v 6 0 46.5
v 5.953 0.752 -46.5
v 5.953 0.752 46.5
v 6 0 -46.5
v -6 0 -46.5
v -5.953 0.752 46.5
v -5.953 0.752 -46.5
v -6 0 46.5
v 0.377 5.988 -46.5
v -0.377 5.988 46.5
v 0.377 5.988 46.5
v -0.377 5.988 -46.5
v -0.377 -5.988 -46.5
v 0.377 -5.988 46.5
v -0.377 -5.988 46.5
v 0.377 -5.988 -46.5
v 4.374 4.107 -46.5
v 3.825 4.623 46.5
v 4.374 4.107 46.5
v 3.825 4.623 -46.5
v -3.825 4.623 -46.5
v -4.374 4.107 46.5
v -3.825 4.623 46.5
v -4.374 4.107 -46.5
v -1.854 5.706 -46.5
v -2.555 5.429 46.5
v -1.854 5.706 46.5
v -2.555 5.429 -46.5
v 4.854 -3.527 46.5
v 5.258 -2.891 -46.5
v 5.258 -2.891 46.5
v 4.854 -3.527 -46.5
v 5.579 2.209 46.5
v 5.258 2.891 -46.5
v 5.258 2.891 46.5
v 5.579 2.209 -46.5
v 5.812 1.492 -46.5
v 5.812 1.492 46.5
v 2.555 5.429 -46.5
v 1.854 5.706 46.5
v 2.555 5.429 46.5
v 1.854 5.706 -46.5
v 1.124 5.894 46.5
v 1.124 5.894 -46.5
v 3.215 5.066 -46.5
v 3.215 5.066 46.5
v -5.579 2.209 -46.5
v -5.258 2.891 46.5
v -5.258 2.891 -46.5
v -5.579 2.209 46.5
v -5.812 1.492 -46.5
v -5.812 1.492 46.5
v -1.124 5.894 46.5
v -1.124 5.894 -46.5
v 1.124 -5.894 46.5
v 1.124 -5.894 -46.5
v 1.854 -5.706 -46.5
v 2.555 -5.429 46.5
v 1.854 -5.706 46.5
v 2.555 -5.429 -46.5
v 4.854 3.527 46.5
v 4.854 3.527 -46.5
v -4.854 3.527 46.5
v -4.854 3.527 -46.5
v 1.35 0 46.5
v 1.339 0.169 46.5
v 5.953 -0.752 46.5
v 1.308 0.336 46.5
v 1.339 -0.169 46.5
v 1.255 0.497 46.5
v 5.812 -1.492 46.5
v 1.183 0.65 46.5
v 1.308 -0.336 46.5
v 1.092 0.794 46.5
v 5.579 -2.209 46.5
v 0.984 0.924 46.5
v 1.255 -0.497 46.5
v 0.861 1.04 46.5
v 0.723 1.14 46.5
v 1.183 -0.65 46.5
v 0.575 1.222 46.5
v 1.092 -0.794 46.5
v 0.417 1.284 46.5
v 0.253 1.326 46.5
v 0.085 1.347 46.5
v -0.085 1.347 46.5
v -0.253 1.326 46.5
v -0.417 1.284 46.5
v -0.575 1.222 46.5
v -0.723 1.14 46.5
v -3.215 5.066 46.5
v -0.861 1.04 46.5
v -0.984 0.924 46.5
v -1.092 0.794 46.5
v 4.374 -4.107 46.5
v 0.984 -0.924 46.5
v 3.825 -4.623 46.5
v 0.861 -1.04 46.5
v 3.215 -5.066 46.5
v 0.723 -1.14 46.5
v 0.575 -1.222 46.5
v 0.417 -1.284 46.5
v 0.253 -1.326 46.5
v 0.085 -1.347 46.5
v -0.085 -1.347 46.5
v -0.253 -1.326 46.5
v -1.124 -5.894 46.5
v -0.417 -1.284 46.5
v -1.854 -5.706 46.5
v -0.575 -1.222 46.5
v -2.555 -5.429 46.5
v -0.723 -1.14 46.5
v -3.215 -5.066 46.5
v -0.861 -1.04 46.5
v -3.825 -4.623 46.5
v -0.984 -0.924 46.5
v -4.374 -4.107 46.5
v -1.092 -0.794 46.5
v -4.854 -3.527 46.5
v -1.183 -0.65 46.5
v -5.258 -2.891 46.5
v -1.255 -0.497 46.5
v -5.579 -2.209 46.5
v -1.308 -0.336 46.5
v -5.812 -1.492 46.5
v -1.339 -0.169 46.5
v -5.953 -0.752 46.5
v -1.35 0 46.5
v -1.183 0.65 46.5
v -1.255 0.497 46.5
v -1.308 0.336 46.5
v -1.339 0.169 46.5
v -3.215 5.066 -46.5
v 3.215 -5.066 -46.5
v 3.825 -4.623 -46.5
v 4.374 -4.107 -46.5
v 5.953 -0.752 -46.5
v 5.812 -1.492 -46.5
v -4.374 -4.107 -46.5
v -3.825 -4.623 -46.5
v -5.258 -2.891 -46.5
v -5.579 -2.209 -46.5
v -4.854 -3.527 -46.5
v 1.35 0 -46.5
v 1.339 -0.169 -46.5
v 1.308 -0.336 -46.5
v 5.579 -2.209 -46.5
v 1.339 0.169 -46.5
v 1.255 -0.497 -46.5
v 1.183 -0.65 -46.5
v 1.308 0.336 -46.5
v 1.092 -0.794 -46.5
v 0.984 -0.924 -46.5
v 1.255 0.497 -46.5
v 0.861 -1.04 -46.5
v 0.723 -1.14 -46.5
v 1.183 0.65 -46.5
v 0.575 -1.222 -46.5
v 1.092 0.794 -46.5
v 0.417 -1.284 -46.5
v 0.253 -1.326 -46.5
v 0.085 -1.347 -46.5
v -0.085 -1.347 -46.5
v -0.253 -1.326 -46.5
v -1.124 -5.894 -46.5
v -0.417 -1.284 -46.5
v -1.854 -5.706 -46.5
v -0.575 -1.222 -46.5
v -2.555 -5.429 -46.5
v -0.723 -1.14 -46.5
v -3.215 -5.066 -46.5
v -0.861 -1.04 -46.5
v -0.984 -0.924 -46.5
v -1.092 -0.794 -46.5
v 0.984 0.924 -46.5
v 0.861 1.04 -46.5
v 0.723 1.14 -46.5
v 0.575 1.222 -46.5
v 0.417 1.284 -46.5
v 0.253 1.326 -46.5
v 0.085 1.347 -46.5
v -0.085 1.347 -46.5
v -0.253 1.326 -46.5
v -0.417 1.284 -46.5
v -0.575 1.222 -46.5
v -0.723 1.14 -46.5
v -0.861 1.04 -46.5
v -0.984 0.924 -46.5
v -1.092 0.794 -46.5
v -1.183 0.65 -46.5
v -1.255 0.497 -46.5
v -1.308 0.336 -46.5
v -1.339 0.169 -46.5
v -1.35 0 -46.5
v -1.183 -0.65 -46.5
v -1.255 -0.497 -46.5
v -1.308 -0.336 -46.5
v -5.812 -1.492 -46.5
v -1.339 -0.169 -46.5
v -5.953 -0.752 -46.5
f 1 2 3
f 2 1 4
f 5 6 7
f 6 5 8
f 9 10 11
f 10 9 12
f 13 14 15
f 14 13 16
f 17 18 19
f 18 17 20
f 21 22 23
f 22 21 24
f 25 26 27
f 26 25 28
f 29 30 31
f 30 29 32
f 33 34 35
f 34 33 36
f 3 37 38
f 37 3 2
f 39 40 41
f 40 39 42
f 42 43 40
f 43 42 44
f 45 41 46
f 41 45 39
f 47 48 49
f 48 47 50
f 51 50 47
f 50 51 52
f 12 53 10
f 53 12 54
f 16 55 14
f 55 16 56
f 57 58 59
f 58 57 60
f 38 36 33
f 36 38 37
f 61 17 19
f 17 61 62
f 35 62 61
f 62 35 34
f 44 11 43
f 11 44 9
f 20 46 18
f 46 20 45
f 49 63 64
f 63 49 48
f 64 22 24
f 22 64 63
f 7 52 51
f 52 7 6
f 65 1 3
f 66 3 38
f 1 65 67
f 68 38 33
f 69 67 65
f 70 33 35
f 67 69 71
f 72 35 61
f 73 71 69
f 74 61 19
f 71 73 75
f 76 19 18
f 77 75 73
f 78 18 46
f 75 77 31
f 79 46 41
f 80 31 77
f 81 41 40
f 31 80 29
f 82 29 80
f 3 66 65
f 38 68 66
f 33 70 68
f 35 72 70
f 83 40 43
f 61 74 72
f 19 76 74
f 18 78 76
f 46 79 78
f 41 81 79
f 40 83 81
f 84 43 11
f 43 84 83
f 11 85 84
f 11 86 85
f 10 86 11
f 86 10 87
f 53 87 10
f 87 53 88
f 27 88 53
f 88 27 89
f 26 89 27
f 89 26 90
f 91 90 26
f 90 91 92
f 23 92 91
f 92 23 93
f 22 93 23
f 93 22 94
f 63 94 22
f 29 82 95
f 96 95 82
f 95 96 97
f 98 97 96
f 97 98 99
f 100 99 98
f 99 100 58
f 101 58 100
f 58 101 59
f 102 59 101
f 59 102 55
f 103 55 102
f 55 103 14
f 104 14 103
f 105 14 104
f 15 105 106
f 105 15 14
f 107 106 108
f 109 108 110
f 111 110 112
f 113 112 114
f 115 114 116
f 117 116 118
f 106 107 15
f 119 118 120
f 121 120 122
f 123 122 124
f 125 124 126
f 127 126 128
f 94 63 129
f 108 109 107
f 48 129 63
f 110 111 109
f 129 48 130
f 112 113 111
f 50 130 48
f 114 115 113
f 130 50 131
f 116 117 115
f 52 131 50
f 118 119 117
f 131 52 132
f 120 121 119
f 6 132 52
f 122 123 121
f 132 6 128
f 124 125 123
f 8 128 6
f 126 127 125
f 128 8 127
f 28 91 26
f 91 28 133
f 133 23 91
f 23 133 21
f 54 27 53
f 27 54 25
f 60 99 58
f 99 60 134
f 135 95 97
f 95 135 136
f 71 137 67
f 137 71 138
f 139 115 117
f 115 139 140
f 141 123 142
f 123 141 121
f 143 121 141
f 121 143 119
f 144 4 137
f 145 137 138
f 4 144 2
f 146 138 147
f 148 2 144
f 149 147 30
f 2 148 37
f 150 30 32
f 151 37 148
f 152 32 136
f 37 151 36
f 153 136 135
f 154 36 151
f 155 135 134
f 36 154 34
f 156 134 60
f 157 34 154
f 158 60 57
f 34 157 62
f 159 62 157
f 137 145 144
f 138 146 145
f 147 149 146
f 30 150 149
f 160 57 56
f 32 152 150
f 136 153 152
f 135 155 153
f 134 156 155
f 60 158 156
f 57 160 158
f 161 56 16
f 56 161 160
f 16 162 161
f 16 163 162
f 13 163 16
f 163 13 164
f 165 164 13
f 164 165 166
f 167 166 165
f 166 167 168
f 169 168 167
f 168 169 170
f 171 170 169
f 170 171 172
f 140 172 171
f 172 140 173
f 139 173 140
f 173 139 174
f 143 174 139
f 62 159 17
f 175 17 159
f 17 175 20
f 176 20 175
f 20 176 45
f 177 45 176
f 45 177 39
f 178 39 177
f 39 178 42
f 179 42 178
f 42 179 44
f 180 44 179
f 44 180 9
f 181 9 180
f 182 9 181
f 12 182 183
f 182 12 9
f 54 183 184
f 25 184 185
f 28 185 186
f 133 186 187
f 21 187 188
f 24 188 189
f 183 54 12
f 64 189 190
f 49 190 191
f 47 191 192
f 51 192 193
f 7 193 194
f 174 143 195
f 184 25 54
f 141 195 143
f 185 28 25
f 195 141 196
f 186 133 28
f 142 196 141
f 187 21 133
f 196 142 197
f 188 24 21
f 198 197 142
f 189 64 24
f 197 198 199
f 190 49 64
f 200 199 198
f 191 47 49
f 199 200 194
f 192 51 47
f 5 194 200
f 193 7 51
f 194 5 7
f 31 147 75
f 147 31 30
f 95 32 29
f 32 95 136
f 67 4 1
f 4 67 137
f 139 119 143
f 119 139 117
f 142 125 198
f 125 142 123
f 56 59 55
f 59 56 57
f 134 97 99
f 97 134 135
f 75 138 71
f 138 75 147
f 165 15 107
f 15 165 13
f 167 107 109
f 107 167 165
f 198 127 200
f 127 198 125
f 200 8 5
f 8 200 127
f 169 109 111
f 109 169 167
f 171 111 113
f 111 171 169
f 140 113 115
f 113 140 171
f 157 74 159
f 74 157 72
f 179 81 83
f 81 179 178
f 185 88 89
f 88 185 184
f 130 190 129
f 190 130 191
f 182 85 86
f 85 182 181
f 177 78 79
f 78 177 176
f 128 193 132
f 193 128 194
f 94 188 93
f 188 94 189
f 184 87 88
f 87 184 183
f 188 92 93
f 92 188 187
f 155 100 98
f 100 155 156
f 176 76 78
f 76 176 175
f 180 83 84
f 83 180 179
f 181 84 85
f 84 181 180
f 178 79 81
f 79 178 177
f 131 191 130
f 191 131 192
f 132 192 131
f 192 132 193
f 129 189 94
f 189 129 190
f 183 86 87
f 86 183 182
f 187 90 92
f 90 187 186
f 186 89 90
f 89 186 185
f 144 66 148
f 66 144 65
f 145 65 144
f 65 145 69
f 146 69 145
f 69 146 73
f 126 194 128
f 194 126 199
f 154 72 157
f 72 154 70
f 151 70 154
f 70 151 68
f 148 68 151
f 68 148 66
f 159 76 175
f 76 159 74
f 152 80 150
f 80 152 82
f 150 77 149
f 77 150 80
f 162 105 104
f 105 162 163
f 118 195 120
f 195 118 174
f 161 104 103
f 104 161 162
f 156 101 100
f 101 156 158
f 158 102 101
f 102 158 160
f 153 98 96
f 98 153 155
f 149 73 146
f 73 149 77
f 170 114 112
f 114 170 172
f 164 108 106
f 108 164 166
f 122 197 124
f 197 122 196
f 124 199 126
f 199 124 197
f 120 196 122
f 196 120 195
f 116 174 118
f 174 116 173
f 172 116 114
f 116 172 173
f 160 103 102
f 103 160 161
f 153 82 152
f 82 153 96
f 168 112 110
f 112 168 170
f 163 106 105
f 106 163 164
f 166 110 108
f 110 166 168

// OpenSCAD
$fn = 50;


difference() {
	union() {
		translate(v = [0, 0, -46.5000000000]) {
			cylinder(h = 93, r = 6.0000000000);
		}
	}
	union() {
		translate(v = [0, 0, -100.0000000000]) {
			cylinder(h = 200, r = 1.3500000000);
		}
	}
}
